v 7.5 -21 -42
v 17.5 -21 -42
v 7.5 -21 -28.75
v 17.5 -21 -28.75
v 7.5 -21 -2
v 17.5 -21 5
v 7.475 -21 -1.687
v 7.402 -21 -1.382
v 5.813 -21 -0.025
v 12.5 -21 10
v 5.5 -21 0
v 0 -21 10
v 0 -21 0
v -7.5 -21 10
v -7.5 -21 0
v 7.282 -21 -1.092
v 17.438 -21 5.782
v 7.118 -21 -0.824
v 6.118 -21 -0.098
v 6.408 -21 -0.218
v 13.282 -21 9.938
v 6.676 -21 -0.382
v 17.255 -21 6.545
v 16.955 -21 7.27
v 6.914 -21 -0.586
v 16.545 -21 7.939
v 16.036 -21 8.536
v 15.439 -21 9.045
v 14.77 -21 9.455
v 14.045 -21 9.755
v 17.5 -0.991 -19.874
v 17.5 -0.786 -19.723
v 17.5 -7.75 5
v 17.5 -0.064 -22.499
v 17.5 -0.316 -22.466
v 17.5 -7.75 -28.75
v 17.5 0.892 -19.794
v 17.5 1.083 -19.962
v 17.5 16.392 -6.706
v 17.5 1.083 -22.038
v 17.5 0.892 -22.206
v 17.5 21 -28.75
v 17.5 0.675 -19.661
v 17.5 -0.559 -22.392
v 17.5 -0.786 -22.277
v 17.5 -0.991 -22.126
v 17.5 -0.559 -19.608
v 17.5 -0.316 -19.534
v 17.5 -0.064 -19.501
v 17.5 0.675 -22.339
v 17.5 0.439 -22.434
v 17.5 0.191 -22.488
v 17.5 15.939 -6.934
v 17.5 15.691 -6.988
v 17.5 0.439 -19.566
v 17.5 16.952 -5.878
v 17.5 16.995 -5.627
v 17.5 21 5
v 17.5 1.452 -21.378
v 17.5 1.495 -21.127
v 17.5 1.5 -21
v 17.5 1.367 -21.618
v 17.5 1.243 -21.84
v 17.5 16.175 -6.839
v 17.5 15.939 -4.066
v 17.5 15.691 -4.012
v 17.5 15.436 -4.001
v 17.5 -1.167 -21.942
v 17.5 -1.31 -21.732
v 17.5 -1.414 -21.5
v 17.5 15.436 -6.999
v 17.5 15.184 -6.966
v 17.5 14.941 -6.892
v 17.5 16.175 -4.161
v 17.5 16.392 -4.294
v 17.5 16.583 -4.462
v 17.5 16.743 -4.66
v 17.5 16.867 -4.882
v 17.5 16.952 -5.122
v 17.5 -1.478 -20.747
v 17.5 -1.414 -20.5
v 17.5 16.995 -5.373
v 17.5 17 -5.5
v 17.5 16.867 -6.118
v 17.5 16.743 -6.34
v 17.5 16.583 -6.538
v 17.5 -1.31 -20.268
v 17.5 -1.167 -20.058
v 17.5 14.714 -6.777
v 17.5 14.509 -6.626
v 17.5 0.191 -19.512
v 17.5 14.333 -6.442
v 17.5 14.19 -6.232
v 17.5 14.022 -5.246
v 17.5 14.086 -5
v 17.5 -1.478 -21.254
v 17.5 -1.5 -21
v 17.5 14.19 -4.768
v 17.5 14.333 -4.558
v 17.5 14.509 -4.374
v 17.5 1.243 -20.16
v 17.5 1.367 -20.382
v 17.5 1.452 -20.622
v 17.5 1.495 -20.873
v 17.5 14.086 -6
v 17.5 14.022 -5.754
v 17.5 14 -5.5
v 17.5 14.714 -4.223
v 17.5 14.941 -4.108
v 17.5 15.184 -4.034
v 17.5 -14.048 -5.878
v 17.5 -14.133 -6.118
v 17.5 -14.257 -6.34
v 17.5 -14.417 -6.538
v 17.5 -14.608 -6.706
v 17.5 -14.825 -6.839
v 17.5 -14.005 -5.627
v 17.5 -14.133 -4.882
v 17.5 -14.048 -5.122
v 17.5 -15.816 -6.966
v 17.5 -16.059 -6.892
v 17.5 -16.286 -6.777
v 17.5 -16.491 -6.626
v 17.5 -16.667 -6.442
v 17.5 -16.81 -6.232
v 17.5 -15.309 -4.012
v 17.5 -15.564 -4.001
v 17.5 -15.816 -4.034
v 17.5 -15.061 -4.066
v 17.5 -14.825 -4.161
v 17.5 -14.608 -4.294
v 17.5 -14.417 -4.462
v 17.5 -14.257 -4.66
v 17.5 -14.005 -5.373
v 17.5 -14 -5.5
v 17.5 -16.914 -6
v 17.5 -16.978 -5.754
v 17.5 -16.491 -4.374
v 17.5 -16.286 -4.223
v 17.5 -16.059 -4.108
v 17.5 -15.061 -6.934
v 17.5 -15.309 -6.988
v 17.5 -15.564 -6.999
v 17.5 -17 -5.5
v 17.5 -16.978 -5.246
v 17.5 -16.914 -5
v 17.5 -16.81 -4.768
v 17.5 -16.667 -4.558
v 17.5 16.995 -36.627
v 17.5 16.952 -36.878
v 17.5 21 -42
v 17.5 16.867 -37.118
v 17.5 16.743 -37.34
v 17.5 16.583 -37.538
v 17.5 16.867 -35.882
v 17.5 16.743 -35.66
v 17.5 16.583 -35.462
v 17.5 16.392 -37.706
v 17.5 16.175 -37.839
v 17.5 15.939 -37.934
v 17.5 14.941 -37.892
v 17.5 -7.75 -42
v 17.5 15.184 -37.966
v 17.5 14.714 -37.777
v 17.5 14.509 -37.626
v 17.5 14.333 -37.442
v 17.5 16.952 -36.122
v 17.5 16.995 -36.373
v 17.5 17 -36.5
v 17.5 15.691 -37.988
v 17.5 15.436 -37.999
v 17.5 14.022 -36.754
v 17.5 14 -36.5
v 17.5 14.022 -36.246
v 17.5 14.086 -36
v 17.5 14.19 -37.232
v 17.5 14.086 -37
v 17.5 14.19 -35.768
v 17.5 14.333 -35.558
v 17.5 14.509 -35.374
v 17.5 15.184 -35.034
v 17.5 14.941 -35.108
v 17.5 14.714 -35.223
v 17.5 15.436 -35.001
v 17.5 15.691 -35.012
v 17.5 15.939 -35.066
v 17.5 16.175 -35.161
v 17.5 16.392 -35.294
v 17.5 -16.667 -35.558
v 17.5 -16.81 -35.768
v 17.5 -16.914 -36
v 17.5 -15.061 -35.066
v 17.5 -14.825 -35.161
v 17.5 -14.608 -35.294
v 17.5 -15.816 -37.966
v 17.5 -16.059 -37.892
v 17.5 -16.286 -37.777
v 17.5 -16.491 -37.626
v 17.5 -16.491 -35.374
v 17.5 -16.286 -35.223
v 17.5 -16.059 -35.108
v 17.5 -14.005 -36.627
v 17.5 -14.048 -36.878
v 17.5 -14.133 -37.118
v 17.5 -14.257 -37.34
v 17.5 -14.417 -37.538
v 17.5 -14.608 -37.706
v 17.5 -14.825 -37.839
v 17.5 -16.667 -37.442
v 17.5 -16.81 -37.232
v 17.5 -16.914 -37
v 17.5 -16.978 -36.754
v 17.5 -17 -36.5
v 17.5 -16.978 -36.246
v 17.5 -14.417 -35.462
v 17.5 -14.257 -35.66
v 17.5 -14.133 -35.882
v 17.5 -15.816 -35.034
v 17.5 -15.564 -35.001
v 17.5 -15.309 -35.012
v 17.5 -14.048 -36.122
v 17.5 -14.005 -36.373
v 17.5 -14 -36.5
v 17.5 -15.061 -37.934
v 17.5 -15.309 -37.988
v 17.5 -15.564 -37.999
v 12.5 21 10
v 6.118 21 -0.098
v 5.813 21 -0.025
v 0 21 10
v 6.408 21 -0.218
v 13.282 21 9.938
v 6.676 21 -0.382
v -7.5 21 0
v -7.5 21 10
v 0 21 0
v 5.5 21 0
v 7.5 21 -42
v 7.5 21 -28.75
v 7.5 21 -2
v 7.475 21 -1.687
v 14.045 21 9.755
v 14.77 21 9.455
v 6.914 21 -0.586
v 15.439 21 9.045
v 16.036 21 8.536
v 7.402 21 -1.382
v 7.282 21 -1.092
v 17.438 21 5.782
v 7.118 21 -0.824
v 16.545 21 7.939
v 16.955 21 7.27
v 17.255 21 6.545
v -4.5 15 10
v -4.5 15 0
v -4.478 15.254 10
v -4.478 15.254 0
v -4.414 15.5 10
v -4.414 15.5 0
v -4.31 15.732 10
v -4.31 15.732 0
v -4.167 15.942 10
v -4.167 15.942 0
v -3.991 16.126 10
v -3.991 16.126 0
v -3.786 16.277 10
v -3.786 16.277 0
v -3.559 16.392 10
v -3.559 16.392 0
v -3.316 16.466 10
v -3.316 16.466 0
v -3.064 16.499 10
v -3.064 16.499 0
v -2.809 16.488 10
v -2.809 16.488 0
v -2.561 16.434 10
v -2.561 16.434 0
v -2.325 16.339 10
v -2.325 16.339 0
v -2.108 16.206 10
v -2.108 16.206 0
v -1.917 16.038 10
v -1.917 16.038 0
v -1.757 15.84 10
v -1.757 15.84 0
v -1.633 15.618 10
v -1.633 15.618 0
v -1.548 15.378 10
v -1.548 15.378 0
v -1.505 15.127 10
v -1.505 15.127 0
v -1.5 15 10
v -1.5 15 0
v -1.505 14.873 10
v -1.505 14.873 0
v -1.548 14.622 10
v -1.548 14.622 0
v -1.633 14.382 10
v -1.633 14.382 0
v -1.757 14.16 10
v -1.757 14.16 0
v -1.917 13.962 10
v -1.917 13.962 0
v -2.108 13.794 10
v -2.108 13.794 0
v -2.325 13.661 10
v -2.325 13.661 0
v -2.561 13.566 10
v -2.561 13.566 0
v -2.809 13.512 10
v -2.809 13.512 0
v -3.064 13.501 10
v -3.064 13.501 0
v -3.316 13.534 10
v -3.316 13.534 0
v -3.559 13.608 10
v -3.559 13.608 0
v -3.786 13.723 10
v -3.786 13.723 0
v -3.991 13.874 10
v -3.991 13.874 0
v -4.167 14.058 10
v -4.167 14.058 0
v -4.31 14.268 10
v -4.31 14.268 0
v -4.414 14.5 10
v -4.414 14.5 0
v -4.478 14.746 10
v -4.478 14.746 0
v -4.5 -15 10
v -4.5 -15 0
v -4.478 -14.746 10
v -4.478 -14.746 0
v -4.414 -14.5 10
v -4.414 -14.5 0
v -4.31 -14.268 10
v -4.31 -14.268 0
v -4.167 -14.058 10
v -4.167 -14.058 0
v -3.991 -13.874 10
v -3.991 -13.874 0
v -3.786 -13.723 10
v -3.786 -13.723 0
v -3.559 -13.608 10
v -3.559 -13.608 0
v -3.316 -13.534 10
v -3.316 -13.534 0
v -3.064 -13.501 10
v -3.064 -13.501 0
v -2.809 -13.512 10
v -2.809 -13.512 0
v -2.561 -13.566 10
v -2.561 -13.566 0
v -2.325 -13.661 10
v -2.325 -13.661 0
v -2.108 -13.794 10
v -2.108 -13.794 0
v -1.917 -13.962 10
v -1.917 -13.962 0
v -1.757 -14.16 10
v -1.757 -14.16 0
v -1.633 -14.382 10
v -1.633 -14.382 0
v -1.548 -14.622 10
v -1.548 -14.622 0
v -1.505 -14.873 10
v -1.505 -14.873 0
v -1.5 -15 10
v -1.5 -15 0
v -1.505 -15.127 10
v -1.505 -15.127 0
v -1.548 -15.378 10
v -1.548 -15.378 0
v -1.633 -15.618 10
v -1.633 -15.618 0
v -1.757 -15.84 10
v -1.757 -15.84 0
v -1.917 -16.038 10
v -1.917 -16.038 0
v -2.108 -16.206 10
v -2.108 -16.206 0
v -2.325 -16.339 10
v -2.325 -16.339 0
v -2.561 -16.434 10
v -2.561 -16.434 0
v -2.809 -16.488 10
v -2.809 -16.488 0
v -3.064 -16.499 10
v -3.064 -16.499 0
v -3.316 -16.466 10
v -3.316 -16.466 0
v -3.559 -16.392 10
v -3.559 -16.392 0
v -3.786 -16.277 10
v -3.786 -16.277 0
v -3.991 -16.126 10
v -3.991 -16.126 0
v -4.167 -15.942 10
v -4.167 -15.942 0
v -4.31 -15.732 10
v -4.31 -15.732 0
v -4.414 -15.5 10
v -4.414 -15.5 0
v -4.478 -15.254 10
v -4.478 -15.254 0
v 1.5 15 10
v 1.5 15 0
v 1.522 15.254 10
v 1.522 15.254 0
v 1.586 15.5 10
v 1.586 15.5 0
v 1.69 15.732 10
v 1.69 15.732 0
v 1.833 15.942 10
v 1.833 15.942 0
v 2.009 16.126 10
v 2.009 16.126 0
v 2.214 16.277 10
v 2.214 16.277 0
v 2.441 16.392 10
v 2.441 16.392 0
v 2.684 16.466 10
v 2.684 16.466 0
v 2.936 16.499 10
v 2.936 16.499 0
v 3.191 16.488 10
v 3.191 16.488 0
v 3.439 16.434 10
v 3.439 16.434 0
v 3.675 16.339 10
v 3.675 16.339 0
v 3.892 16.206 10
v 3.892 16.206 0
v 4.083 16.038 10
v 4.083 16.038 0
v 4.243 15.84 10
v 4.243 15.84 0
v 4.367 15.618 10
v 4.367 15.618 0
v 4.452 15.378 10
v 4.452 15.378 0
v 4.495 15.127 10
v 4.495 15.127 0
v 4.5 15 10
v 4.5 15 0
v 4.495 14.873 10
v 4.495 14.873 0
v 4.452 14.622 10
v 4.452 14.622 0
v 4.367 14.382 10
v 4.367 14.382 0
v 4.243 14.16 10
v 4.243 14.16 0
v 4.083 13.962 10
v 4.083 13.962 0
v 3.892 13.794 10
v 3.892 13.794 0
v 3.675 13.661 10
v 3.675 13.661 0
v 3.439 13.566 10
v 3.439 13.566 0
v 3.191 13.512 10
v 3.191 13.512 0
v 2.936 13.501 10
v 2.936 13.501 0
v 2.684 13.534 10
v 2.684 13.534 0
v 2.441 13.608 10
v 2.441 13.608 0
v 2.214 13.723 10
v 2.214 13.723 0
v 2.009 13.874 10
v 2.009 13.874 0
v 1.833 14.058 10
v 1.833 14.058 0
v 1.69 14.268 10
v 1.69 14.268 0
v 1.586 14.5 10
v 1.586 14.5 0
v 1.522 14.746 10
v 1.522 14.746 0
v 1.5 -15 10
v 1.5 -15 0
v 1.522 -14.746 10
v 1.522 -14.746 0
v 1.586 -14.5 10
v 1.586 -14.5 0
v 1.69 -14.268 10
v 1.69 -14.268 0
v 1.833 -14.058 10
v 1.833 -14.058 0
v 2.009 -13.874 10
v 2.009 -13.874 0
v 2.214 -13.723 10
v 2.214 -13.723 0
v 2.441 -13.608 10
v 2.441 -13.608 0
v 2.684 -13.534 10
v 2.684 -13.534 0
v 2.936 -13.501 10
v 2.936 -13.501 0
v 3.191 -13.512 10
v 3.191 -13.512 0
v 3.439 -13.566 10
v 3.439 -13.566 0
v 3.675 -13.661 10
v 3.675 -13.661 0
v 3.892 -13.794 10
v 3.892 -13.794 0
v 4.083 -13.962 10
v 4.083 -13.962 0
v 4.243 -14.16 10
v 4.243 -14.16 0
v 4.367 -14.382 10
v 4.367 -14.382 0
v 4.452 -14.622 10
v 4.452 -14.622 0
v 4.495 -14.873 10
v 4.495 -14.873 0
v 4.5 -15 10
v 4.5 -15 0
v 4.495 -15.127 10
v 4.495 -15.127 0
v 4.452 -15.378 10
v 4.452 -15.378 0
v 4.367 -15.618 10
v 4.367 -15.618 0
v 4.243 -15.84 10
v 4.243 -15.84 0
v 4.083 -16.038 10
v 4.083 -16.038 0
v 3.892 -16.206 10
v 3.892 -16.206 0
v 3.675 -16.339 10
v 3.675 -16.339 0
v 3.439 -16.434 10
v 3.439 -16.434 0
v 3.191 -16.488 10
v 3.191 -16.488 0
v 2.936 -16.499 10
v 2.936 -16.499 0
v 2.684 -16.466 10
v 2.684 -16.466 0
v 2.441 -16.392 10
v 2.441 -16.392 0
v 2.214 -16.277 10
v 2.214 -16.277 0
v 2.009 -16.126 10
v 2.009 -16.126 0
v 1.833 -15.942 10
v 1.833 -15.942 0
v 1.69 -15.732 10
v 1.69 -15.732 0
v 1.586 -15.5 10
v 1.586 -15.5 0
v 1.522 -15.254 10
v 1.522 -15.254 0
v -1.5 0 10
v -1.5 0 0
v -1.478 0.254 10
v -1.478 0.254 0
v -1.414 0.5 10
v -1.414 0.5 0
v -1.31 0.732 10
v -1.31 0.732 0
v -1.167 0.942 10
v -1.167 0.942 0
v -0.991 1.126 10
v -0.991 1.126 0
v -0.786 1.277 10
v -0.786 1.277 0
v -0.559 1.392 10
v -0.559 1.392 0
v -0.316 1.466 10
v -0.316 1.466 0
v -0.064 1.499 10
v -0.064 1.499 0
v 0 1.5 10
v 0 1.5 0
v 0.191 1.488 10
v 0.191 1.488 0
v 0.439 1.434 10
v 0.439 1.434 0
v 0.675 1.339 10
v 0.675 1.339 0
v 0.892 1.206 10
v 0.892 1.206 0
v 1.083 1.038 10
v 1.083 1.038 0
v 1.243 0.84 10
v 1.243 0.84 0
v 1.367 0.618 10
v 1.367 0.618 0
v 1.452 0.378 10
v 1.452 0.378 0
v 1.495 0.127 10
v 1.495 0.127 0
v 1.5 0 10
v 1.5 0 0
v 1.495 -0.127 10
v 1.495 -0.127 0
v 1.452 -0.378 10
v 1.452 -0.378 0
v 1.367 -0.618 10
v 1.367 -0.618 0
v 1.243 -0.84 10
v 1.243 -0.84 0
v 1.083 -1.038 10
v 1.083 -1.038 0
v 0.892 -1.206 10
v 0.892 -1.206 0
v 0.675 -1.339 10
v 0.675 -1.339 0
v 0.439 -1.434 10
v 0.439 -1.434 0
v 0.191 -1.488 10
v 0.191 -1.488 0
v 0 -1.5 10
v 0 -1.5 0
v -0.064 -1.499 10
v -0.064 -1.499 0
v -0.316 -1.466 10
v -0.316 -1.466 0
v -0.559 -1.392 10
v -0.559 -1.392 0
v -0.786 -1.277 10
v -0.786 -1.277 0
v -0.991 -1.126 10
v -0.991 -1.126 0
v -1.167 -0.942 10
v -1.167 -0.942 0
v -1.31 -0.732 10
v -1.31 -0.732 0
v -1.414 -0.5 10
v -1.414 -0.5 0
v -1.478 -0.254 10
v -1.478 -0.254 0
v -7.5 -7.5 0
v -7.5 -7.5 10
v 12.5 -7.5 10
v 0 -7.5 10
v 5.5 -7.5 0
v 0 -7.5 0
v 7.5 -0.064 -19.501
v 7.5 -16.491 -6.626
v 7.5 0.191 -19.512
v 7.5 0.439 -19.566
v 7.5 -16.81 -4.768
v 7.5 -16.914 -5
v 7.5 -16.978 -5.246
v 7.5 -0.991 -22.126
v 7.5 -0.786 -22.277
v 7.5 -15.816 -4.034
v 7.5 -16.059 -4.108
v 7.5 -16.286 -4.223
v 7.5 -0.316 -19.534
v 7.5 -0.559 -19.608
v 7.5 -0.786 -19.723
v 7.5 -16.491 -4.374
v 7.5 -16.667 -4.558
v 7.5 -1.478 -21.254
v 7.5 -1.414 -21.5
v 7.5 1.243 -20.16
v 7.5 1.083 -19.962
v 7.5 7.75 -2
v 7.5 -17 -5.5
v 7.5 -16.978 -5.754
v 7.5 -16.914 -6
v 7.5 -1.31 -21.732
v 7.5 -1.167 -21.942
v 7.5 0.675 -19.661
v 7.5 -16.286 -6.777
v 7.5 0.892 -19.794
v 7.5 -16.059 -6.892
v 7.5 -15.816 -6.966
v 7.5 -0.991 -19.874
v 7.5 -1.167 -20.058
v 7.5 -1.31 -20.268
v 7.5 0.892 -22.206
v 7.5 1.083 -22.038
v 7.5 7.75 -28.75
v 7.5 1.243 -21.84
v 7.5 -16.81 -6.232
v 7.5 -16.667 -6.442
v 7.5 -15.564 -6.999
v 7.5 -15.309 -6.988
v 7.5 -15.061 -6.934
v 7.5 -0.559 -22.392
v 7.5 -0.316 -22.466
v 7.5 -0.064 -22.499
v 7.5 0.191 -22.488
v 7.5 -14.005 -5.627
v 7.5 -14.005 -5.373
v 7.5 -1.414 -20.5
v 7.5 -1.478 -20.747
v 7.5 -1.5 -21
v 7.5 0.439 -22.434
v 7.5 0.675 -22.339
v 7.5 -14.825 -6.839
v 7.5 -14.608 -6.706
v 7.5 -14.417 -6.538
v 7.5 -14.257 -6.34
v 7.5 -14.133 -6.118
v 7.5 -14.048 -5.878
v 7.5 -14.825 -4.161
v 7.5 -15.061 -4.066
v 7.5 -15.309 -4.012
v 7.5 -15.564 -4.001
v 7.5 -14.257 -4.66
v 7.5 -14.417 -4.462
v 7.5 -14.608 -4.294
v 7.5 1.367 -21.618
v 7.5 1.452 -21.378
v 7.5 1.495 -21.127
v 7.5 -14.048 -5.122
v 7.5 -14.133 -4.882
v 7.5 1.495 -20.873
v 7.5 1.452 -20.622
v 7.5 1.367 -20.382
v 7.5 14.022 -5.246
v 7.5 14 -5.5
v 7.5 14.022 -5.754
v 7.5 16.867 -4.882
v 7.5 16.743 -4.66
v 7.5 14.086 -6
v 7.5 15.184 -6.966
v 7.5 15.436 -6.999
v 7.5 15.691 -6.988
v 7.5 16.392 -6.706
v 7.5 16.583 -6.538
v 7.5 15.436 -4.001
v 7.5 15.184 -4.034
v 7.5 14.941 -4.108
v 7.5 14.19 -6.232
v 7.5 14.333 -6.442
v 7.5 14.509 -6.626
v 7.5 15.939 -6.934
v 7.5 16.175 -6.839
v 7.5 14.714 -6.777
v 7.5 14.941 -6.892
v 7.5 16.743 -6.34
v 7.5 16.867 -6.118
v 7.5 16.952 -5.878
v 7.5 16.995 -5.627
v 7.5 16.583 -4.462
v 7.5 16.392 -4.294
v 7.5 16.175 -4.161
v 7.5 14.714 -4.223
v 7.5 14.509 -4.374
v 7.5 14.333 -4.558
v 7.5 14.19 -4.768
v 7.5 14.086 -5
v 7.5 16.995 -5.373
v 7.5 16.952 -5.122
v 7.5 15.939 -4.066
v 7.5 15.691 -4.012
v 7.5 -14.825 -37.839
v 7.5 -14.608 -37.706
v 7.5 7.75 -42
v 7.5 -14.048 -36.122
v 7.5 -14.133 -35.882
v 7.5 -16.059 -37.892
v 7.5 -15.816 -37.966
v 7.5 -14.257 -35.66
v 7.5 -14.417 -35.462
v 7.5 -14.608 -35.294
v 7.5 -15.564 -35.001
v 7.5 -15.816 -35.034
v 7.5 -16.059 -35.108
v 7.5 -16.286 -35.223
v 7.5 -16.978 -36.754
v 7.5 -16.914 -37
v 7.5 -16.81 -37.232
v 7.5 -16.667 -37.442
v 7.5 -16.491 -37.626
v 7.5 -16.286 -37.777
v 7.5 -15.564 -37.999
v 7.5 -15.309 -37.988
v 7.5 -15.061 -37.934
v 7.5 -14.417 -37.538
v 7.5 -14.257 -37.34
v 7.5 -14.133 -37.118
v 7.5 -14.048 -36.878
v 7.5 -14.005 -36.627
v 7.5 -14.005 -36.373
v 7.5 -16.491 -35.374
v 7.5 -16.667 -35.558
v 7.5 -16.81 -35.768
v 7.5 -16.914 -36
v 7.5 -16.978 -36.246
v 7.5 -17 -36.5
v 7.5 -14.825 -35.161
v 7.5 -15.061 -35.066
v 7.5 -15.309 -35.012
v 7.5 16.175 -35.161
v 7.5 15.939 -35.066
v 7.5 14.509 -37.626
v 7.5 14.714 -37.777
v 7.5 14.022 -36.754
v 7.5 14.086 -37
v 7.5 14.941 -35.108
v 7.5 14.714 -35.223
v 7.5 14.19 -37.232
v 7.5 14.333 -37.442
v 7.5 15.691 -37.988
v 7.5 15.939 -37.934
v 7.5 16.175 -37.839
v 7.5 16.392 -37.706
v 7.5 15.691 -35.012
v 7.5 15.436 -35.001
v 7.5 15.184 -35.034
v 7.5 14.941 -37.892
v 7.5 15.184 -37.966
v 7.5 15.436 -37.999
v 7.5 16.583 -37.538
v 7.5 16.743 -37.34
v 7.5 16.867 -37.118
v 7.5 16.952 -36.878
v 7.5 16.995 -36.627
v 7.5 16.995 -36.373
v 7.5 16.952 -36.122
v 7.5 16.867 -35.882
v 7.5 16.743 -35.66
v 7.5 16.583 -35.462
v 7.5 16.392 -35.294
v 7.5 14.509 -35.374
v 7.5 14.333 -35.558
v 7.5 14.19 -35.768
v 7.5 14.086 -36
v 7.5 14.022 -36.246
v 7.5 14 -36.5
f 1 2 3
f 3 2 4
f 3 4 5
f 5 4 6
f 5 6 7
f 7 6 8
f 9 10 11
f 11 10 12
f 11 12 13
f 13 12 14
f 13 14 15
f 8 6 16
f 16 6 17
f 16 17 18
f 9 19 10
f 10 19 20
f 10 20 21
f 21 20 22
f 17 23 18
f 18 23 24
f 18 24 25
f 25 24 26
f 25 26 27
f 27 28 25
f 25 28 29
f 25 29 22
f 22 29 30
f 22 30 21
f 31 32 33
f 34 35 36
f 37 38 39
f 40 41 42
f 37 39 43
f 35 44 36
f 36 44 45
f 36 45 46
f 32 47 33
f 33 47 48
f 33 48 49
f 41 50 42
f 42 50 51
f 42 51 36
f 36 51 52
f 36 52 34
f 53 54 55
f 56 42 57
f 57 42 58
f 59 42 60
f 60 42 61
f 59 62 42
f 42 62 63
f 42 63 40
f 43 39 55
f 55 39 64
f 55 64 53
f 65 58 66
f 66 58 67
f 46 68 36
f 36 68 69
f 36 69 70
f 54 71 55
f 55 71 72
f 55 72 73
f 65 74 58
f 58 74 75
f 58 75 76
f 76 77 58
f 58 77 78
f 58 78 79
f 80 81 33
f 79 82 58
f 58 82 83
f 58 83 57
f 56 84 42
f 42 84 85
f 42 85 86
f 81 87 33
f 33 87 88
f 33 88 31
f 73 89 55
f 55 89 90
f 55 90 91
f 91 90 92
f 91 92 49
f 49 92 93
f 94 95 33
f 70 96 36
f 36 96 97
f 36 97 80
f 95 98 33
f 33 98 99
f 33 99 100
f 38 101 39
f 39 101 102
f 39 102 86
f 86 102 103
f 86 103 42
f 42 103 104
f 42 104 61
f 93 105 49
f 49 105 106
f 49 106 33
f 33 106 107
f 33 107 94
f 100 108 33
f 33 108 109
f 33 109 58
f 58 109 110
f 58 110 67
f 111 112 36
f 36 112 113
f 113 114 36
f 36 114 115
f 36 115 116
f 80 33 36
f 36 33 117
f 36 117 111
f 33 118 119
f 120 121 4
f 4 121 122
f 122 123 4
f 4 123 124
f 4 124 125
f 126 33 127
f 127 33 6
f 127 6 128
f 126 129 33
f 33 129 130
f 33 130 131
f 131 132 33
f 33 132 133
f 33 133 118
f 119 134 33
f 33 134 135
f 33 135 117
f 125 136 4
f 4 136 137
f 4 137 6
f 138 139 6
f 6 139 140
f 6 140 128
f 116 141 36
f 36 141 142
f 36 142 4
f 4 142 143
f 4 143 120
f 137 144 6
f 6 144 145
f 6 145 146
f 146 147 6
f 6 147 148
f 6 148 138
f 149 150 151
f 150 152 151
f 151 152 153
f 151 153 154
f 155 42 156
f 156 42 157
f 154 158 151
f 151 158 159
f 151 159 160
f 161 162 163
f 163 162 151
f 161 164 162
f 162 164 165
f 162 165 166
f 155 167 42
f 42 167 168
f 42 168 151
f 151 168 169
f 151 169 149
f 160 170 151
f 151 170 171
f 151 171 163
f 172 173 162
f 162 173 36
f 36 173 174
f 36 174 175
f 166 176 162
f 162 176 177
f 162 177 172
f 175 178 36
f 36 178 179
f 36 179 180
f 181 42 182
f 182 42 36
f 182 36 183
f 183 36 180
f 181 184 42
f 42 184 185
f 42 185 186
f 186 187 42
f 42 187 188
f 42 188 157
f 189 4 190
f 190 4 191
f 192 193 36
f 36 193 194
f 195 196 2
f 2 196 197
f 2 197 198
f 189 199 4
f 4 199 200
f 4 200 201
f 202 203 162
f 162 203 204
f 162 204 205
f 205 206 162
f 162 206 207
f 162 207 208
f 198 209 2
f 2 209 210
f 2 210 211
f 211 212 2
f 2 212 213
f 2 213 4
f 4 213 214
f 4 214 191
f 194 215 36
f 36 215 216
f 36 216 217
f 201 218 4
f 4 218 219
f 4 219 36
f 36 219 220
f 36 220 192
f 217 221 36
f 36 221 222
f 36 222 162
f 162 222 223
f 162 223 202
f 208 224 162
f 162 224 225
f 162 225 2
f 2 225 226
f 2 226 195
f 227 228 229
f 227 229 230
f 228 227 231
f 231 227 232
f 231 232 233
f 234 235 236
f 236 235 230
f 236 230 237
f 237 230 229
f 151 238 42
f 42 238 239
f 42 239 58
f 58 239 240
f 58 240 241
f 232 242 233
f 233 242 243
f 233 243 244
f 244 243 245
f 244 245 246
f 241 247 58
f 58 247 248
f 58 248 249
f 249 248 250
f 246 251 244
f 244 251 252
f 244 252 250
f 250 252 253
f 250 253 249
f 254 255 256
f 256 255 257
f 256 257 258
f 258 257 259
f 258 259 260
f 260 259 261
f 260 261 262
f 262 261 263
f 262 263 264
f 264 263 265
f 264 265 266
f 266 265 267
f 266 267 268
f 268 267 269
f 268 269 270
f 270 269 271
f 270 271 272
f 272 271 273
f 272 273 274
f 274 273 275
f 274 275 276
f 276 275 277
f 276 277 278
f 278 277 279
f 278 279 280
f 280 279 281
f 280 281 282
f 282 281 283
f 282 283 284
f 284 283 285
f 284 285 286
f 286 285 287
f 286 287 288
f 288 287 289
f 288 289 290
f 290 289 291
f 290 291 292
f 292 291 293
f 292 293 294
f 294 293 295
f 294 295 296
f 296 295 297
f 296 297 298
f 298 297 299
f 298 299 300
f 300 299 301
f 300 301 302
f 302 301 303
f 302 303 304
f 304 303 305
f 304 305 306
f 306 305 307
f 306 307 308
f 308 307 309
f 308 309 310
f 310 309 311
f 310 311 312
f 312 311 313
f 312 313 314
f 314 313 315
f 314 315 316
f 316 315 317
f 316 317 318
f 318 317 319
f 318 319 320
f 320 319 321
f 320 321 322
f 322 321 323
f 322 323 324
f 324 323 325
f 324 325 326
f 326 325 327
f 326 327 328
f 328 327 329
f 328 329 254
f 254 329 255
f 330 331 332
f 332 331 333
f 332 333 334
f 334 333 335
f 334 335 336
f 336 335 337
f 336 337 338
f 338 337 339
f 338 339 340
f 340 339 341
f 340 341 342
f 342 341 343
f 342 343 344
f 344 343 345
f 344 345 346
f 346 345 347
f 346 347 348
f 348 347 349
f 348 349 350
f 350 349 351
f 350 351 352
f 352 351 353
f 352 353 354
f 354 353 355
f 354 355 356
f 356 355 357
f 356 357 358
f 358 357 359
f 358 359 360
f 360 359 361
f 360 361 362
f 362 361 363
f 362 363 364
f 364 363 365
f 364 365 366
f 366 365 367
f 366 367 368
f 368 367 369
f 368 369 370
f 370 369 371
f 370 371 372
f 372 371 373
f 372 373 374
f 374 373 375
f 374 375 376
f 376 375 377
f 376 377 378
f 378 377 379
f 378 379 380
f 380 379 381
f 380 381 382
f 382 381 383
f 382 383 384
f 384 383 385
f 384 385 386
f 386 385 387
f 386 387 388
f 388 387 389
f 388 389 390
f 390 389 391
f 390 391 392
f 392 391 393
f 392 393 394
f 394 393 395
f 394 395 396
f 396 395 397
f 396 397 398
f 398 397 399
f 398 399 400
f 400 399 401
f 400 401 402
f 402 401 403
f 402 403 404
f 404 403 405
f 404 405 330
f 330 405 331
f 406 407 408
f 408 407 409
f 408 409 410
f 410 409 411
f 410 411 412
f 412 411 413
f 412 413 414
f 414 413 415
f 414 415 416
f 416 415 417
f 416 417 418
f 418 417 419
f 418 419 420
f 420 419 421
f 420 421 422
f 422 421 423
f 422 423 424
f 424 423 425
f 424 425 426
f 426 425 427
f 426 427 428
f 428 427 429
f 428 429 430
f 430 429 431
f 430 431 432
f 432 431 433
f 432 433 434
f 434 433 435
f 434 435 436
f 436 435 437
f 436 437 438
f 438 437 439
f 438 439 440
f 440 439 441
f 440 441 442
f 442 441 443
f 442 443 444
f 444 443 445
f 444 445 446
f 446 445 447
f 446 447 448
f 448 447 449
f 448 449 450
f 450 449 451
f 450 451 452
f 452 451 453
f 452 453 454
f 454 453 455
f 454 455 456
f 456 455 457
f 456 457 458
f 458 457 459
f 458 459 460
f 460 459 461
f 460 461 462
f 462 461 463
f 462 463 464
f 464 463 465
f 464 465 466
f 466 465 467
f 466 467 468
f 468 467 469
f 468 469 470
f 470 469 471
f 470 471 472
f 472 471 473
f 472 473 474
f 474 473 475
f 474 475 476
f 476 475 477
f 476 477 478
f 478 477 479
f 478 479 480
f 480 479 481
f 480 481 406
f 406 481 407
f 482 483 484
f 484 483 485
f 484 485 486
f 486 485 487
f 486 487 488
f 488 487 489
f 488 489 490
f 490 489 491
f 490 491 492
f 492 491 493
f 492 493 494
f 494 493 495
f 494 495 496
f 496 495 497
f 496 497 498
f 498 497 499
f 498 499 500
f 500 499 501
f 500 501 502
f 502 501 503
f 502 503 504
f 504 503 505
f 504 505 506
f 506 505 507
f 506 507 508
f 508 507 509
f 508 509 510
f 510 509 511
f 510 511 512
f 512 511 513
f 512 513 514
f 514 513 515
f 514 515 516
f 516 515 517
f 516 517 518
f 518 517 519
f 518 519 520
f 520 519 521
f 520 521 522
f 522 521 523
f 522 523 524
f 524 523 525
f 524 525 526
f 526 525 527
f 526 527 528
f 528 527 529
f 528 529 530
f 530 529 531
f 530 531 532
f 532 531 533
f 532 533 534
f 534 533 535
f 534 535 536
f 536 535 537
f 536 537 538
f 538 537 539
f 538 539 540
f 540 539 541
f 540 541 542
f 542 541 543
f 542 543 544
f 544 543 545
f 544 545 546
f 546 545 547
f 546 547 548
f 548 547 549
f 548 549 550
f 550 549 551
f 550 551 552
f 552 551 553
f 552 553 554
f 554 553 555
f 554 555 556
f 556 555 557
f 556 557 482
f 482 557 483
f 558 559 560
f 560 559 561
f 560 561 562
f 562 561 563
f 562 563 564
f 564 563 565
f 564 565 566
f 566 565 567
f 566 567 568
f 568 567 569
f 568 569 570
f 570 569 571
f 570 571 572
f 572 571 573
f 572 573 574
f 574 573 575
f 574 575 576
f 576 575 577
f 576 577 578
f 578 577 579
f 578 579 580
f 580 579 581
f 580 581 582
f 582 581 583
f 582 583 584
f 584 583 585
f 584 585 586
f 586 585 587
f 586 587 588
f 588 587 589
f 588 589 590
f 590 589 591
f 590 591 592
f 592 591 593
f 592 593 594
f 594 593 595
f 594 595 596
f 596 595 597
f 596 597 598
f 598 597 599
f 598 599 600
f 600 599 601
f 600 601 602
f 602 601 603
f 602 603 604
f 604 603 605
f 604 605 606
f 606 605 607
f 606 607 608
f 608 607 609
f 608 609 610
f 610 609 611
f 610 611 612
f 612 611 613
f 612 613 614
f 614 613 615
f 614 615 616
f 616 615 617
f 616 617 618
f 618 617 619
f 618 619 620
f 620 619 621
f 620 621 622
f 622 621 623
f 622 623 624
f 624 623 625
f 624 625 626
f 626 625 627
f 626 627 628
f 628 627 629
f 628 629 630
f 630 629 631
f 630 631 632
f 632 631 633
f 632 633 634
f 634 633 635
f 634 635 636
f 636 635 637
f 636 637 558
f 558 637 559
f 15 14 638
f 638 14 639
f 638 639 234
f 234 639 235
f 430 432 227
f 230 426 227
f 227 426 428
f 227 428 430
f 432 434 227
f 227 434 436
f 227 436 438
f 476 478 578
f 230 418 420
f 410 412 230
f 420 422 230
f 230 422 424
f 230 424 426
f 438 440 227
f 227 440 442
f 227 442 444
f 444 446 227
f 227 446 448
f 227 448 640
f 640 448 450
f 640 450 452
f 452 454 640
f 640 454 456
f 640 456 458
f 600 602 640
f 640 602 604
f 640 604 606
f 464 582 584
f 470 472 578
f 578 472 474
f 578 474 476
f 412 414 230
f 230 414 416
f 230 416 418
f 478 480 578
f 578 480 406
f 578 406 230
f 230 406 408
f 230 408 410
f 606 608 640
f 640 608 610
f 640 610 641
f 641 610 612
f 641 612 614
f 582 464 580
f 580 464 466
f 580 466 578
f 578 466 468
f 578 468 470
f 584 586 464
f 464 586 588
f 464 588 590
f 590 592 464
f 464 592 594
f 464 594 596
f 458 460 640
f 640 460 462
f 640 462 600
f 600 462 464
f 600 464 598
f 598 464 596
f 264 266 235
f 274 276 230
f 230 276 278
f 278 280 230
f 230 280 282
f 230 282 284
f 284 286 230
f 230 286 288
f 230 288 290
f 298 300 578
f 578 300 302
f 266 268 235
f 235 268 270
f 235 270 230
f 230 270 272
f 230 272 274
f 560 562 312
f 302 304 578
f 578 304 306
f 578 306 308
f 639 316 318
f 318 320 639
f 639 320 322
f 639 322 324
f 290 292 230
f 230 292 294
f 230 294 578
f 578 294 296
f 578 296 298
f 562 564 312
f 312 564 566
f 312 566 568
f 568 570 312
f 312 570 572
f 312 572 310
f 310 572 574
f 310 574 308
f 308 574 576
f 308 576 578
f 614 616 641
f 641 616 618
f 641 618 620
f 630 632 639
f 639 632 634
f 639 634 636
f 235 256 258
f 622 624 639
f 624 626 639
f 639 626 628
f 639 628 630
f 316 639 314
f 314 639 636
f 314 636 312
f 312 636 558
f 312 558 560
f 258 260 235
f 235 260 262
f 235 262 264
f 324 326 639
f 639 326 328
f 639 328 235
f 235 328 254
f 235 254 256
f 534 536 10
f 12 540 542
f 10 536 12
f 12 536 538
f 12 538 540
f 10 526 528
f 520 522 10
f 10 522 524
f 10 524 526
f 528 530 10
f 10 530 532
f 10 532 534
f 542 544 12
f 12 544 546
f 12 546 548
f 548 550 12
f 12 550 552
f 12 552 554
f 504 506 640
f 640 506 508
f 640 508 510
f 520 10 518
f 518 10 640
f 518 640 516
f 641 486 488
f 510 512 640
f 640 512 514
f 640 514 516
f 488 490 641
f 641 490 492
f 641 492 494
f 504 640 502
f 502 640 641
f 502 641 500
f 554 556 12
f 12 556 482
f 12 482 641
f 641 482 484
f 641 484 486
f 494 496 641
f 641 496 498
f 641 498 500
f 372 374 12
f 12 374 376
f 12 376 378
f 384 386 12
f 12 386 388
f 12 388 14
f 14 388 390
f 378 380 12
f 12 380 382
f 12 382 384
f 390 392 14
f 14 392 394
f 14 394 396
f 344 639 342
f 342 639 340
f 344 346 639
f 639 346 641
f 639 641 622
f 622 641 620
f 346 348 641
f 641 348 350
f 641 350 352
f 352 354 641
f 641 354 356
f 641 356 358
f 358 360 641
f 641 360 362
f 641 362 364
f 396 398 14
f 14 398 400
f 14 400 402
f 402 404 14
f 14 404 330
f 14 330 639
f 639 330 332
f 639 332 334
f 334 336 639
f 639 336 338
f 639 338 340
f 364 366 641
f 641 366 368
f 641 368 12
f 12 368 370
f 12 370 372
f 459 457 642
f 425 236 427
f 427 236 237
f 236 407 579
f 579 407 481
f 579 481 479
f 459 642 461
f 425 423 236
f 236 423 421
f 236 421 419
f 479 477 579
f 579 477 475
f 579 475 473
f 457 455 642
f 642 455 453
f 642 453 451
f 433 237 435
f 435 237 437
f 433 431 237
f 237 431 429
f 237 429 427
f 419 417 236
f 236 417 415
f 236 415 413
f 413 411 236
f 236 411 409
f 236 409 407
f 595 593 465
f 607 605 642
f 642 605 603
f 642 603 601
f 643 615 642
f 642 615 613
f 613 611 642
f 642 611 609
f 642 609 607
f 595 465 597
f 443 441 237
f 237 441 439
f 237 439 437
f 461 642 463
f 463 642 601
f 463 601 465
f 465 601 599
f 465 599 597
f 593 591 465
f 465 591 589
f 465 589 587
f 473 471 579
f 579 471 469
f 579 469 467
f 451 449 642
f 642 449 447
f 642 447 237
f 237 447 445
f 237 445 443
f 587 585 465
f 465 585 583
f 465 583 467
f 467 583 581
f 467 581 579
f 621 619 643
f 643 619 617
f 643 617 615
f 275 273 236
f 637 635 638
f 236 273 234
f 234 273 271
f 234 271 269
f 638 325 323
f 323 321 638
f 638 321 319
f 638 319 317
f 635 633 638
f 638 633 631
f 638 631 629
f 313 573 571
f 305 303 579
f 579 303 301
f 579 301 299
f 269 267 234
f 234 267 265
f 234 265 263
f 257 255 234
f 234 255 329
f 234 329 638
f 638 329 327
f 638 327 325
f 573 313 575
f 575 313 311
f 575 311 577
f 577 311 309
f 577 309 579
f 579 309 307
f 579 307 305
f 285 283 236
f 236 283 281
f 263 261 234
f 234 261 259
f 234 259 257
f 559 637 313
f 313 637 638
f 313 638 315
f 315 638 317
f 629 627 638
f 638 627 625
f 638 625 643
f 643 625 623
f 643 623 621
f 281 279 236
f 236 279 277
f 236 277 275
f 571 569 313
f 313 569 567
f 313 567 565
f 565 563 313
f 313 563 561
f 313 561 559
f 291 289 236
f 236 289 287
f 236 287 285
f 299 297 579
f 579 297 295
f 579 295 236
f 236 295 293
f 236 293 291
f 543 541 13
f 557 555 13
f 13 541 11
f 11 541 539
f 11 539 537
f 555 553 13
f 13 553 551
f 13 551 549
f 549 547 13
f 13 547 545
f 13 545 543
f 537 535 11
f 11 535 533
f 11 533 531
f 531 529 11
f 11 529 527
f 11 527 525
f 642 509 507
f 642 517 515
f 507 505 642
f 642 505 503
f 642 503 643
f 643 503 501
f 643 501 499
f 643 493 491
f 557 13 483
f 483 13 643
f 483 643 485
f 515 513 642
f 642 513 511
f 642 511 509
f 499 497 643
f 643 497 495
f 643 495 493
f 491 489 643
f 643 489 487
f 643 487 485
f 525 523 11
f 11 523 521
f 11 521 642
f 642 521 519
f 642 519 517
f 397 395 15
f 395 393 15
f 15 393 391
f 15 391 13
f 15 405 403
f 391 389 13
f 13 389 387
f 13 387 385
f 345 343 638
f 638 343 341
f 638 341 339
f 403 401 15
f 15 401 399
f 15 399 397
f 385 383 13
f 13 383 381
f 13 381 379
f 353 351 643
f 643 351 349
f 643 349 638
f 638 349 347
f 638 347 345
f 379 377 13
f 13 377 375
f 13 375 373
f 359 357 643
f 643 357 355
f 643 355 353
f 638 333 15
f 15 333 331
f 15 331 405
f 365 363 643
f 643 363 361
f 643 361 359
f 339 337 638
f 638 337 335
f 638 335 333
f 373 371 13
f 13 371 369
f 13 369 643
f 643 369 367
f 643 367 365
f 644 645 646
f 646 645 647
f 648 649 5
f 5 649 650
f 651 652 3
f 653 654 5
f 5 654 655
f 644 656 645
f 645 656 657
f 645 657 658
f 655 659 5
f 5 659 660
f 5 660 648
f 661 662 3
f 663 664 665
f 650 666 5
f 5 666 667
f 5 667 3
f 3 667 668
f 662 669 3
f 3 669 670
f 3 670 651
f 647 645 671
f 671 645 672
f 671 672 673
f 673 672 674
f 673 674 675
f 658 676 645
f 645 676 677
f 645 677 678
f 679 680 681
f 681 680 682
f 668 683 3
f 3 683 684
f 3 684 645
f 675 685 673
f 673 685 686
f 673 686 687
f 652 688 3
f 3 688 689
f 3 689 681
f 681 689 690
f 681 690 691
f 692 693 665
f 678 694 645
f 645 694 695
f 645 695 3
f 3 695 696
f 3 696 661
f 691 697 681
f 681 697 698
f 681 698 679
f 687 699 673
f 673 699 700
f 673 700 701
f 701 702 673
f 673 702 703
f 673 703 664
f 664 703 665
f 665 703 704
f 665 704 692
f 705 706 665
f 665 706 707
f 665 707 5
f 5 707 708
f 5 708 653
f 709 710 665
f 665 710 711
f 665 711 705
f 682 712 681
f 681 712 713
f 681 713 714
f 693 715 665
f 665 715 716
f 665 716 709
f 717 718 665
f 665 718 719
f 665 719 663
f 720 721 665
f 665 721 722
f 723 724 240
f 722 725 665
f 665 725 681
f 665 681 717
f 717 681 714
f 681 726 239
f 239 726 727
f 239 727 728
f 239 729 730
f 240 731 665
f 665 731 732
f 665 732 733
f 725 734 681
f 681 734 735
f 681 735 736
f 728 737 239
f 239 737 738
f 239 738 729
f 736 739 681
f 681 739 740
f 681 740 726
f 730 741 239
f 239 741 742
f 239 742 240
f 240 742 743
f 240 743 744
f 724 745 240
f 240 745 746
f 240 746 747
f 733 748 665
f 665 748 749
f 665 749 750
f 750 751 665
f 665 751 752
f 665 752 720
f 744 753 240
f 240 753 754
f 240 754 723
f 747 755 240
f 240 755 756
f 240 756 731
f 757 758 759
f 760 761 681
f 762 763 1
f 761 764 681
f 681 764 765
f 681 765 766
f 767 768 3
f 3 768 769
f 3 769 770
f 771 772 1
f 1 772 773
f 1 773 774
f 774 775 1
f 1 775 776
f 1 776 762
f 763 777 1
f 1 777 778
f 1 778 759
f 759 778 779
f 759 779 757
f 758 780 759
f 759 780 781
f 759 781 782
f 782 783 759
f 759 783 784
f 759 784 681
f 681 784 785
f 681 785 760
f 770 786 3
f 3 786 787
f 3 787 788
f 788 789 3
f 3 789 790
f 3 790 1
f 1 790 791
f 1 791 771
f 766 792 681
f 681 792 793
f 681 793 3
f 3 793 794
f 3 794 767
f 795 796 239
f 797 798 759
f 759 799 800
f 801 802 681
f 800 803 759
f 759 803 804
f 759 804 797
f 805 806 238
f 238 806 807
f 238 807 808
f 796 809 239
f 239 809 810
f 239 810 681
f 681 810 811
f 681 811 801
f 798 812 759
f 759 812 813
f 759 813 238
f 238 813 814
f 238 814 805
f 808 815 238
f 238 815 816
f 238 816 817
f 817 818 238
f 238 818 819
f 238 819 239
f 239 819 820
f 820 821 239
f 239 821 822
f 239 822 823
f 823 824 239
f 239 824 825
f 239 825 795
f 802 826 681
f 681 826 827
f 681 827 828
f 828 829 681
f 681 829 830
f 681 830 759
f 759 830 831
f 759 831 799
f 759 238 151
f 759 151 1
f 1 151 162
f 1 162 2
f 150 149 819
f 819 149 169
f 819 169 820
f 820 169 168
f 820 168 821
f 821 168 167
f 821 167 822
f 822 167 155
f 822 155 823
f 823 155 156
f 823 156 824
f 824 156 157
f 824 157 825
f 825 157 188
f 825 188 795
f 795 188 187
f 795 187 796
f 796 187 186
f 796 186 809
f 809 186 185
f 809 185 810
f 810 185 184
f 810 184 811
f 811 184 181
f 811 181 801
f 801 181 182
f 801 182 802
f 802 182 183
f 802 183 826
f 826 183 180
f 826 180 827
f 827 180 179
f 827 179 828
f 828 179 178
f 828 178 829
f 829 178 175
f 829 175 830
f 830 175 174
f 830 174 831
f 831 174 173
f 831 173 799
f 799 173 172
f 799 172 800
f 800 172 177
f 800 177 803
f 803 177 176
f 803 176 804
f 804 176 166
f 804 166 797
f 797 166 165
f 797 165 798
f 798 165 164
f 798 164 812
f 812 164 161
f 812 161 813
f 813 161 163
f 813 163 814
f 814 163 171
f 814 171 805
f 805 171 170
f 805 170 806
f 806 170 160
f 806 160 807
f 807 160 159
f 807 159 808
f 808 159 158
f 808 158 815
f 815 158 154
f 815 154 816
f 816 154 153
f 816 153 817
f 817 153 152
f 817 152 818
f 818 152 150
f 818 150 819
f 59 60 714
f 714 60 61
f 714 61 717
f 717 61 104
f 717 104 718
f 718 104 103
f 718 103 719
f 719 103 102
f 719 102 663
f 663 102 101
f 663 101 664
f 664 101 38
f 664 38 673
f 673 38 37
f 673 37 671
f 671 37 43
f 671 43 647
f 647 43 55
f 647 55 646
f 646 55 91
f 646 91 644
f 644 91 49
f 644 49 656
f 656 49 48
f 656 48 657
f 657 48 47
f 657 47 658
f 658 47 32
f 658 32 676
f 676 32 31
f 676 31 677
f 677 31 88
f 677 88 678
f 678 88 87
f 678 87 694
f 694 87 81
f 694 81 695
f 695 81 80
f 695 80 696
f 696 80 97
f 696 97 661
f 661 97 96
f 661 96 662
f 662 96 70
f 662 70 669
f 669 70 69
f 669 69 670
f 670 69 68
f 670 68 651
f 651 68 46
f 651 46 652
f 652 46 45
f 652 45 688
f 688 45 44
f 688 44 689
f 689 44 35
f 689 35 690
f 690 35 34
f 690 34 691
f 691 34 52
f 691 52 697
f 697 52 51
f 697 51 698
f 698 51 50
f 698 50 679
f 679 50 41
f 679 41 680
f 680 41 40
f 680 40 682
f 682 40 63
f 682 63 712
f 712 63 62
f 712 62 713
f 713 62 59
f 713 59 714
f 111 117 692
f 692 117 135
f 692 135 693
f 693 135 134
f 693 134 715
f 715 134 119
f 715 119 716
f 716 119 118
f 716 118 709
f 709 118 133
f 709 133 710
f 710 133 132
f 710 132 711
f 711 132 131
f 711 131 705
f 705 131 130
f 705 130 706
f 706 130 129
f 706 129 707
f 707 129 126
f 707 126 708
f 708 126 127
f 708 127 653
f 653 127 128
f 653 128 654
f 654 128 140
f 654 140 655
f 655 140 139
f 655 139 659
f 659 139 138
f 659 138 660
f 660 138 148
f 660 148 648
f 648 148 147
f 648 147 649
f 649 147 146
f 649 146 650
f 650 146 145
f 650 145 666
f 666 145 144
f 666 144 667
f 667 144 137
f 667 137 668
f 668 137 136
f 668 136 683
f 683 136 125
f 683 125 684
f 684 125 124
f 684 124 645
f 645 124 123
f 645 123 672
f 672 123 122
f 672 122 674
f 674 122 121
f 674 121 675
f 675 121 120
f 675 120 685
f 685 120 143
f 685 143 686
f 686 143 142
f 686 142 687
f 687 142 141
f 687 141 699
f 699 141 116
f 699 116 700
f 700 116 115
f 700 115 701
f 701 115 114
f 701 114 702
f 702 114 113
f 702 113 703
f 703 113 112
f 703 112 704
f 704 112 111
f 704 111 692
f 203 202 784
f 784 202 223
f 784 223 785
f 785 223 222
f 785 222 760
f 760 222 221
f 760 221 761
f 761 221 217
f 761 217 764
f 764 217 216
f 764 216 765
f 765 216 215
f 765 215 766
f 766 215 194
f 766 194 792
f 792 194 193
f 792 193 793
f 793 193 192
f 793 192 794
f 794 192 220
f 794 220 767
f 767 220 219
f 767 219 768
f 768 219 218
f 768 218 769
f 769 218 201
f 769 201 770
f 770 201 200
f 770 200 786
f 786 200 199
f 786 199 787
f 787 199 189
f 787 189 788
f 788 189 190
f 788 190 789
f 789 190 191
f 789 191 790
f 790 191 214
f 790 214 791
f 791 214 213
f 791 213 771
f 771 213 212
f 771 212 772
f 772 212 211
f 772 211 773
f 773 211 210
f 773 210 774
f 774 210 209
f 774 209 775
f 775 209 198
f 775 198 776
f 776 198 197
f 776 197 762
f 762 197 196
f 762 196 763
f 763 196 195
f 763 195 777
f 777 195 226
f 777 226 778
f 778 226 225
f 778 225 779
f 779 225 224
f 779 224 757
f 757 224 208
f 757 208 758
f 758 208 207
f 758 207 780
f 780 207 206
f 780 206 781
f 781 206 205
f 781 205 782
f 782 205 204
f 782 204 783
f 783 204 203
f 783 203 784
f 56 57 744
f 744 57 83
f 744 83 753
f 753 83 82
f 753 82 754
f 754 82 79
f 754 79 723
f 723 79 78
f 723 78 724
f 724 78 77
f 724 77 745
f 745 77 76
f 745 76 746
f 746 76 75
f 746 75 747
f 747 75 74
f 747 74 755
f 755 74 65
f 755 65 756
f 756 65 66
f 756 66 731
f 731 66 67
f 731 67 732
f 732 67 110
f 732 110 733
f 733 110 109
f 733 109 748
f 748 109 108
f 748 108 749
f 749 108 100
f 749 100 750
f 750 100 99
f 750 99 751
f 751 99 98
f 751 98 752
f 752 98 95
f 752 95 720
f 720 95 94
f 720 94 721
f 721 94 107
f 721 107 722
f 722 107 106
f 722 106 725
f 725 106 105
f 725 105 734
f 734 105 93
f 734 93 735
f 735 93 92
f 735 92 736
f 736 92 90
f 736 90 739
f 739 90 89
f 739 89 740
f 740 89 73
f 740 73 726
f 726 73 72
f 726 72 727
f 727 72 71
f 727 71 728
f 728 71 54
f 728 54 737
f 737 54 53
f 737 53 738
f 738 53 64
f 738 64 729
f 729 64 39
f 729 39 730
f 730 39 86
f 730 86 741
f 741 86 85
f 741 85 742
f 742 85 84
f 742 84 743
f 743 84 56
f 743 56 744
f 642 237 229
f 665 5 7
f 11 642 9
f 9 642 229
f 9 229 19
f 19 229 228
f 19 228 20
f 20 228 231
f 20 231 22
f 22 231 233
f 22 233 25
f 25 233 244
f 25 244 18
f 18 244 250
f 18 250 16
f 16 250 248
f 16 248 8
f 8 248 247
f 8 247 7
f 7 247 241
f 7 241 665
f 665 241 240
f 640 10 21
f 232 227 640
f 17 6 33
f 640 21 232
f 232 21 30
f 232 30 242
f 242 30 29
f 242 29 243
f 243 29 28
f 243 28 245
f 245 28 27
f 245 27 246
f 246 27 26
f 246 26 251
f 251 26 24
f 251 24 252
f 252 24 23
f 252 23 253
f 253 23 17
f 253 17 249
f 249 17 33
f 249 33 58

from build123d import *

# Parameters (mm, degrees)
SKETCH_1_W          = 15
SKETCH_1_H          = 42
SKETCH_1_R          = 1.5
SKETCH_1_W_2        = 10
EXTRUDE_1_DEPTH     = 10
SKETCH_2_W          = 10
SKETCH_2_H          = 42
EXTRUDE_2_DEPTH     = 42
SKETCH_3_R          = 1.5
CUT_EXTRUDE_1_DEPTH = 15
FILLET_1_R          = 2
FILLET_2_R          = 5


with BuildPart() as part:
    # 草图1 → 凸台-拉伸1 (new body)
    # profile 1 of 2: a face of its own
    with BuildSketch(Plane.XY):
        Rectangle(SKETCH_1_W, SKETCH_1_H)
        Circle(SKETCH_1_R, mode=Mode.SUBTRACT)
        with Locations((3, -15)):
            Circle(SKETCH_1_R, mode=Mode.SUBTRACT)
        with Locations((3, 15)):
            Circle(SKETCH_1_R, mode=Mode.SUBTRACT)
        with Locations((-3, -15)):
            Circle(SKETCH_1_R, mode=Mode.SUBTRACT)
        with Locations((-3, 15)):
            Circle(SKETCH_1_R, mode=Mode.SUBTRACT)
    # profile 2 of 2: a face of its own
    with BuildSketch(Plane.XY):
        with Locations((12.5, 0)):
            Rectangle(SKETCH_1_W_2, SKETCH_1_H)
    extrude(amount=EXTRUDE_1_DEPTH)

    # 草图2 → 凸台-拉伸2 (add)
    with BuildSketch(Plane(origin=(0, 0, 0), x_dir=(-1, 0, 0), z_dir=(0, 0, -1))):
        with Locations((-12.5, 0)):
            Rectangle(SKETCH_2_W, SKETCH_2_H)
    extrude(amount=EXTRUDE_2_DEPTH)

    # 草图3 → 切除-拉伸1 (cut)
    with BuildSketch(Plane.ZY.offset(-7.5)):
        with Locations(Location((-36.5, 15.5, 0), (0, 0, 270))):
            Circle(SKETCH_3_R)
        with Locations(Location((-5.5, 15.5, 0), (0, 0, 270))):
            Circle(SKETCH_3_R)
        with Locations(Location((-36.5, -15.5, 0), (0, 0, 270))):
            Circle(SKETCH_3_R)
        with Locations(Location((-5.5, -15.5, 0), (0, 0, 270))):
            Circle(SKETCH_3_R)
        with Locations(Location((-21, 0, 0), (0, 0, 270))):
            Circle(SKETCH_3_R)
    extrude(amount=-CUT_EXTRUDE_1_DEPTH, mode=Mode.SUBTRACT)

    # 圆角1
    fillet_1_edges = [part.edges().sort_by_distance(p)[0] for p in [
        (7.5, 0, 0),
    ]]
    fillet(fillet_1_edges, radius=FILLET_1_R)

    # 圆角2
    fillet_2_edges = [part.edges().sort_by_distance(p)[0] for p in [
        (17.5, 0, 10),
    ]]
    fillet(fillet_2_edges, radius=FILLET_2_R)


solid = part.part
